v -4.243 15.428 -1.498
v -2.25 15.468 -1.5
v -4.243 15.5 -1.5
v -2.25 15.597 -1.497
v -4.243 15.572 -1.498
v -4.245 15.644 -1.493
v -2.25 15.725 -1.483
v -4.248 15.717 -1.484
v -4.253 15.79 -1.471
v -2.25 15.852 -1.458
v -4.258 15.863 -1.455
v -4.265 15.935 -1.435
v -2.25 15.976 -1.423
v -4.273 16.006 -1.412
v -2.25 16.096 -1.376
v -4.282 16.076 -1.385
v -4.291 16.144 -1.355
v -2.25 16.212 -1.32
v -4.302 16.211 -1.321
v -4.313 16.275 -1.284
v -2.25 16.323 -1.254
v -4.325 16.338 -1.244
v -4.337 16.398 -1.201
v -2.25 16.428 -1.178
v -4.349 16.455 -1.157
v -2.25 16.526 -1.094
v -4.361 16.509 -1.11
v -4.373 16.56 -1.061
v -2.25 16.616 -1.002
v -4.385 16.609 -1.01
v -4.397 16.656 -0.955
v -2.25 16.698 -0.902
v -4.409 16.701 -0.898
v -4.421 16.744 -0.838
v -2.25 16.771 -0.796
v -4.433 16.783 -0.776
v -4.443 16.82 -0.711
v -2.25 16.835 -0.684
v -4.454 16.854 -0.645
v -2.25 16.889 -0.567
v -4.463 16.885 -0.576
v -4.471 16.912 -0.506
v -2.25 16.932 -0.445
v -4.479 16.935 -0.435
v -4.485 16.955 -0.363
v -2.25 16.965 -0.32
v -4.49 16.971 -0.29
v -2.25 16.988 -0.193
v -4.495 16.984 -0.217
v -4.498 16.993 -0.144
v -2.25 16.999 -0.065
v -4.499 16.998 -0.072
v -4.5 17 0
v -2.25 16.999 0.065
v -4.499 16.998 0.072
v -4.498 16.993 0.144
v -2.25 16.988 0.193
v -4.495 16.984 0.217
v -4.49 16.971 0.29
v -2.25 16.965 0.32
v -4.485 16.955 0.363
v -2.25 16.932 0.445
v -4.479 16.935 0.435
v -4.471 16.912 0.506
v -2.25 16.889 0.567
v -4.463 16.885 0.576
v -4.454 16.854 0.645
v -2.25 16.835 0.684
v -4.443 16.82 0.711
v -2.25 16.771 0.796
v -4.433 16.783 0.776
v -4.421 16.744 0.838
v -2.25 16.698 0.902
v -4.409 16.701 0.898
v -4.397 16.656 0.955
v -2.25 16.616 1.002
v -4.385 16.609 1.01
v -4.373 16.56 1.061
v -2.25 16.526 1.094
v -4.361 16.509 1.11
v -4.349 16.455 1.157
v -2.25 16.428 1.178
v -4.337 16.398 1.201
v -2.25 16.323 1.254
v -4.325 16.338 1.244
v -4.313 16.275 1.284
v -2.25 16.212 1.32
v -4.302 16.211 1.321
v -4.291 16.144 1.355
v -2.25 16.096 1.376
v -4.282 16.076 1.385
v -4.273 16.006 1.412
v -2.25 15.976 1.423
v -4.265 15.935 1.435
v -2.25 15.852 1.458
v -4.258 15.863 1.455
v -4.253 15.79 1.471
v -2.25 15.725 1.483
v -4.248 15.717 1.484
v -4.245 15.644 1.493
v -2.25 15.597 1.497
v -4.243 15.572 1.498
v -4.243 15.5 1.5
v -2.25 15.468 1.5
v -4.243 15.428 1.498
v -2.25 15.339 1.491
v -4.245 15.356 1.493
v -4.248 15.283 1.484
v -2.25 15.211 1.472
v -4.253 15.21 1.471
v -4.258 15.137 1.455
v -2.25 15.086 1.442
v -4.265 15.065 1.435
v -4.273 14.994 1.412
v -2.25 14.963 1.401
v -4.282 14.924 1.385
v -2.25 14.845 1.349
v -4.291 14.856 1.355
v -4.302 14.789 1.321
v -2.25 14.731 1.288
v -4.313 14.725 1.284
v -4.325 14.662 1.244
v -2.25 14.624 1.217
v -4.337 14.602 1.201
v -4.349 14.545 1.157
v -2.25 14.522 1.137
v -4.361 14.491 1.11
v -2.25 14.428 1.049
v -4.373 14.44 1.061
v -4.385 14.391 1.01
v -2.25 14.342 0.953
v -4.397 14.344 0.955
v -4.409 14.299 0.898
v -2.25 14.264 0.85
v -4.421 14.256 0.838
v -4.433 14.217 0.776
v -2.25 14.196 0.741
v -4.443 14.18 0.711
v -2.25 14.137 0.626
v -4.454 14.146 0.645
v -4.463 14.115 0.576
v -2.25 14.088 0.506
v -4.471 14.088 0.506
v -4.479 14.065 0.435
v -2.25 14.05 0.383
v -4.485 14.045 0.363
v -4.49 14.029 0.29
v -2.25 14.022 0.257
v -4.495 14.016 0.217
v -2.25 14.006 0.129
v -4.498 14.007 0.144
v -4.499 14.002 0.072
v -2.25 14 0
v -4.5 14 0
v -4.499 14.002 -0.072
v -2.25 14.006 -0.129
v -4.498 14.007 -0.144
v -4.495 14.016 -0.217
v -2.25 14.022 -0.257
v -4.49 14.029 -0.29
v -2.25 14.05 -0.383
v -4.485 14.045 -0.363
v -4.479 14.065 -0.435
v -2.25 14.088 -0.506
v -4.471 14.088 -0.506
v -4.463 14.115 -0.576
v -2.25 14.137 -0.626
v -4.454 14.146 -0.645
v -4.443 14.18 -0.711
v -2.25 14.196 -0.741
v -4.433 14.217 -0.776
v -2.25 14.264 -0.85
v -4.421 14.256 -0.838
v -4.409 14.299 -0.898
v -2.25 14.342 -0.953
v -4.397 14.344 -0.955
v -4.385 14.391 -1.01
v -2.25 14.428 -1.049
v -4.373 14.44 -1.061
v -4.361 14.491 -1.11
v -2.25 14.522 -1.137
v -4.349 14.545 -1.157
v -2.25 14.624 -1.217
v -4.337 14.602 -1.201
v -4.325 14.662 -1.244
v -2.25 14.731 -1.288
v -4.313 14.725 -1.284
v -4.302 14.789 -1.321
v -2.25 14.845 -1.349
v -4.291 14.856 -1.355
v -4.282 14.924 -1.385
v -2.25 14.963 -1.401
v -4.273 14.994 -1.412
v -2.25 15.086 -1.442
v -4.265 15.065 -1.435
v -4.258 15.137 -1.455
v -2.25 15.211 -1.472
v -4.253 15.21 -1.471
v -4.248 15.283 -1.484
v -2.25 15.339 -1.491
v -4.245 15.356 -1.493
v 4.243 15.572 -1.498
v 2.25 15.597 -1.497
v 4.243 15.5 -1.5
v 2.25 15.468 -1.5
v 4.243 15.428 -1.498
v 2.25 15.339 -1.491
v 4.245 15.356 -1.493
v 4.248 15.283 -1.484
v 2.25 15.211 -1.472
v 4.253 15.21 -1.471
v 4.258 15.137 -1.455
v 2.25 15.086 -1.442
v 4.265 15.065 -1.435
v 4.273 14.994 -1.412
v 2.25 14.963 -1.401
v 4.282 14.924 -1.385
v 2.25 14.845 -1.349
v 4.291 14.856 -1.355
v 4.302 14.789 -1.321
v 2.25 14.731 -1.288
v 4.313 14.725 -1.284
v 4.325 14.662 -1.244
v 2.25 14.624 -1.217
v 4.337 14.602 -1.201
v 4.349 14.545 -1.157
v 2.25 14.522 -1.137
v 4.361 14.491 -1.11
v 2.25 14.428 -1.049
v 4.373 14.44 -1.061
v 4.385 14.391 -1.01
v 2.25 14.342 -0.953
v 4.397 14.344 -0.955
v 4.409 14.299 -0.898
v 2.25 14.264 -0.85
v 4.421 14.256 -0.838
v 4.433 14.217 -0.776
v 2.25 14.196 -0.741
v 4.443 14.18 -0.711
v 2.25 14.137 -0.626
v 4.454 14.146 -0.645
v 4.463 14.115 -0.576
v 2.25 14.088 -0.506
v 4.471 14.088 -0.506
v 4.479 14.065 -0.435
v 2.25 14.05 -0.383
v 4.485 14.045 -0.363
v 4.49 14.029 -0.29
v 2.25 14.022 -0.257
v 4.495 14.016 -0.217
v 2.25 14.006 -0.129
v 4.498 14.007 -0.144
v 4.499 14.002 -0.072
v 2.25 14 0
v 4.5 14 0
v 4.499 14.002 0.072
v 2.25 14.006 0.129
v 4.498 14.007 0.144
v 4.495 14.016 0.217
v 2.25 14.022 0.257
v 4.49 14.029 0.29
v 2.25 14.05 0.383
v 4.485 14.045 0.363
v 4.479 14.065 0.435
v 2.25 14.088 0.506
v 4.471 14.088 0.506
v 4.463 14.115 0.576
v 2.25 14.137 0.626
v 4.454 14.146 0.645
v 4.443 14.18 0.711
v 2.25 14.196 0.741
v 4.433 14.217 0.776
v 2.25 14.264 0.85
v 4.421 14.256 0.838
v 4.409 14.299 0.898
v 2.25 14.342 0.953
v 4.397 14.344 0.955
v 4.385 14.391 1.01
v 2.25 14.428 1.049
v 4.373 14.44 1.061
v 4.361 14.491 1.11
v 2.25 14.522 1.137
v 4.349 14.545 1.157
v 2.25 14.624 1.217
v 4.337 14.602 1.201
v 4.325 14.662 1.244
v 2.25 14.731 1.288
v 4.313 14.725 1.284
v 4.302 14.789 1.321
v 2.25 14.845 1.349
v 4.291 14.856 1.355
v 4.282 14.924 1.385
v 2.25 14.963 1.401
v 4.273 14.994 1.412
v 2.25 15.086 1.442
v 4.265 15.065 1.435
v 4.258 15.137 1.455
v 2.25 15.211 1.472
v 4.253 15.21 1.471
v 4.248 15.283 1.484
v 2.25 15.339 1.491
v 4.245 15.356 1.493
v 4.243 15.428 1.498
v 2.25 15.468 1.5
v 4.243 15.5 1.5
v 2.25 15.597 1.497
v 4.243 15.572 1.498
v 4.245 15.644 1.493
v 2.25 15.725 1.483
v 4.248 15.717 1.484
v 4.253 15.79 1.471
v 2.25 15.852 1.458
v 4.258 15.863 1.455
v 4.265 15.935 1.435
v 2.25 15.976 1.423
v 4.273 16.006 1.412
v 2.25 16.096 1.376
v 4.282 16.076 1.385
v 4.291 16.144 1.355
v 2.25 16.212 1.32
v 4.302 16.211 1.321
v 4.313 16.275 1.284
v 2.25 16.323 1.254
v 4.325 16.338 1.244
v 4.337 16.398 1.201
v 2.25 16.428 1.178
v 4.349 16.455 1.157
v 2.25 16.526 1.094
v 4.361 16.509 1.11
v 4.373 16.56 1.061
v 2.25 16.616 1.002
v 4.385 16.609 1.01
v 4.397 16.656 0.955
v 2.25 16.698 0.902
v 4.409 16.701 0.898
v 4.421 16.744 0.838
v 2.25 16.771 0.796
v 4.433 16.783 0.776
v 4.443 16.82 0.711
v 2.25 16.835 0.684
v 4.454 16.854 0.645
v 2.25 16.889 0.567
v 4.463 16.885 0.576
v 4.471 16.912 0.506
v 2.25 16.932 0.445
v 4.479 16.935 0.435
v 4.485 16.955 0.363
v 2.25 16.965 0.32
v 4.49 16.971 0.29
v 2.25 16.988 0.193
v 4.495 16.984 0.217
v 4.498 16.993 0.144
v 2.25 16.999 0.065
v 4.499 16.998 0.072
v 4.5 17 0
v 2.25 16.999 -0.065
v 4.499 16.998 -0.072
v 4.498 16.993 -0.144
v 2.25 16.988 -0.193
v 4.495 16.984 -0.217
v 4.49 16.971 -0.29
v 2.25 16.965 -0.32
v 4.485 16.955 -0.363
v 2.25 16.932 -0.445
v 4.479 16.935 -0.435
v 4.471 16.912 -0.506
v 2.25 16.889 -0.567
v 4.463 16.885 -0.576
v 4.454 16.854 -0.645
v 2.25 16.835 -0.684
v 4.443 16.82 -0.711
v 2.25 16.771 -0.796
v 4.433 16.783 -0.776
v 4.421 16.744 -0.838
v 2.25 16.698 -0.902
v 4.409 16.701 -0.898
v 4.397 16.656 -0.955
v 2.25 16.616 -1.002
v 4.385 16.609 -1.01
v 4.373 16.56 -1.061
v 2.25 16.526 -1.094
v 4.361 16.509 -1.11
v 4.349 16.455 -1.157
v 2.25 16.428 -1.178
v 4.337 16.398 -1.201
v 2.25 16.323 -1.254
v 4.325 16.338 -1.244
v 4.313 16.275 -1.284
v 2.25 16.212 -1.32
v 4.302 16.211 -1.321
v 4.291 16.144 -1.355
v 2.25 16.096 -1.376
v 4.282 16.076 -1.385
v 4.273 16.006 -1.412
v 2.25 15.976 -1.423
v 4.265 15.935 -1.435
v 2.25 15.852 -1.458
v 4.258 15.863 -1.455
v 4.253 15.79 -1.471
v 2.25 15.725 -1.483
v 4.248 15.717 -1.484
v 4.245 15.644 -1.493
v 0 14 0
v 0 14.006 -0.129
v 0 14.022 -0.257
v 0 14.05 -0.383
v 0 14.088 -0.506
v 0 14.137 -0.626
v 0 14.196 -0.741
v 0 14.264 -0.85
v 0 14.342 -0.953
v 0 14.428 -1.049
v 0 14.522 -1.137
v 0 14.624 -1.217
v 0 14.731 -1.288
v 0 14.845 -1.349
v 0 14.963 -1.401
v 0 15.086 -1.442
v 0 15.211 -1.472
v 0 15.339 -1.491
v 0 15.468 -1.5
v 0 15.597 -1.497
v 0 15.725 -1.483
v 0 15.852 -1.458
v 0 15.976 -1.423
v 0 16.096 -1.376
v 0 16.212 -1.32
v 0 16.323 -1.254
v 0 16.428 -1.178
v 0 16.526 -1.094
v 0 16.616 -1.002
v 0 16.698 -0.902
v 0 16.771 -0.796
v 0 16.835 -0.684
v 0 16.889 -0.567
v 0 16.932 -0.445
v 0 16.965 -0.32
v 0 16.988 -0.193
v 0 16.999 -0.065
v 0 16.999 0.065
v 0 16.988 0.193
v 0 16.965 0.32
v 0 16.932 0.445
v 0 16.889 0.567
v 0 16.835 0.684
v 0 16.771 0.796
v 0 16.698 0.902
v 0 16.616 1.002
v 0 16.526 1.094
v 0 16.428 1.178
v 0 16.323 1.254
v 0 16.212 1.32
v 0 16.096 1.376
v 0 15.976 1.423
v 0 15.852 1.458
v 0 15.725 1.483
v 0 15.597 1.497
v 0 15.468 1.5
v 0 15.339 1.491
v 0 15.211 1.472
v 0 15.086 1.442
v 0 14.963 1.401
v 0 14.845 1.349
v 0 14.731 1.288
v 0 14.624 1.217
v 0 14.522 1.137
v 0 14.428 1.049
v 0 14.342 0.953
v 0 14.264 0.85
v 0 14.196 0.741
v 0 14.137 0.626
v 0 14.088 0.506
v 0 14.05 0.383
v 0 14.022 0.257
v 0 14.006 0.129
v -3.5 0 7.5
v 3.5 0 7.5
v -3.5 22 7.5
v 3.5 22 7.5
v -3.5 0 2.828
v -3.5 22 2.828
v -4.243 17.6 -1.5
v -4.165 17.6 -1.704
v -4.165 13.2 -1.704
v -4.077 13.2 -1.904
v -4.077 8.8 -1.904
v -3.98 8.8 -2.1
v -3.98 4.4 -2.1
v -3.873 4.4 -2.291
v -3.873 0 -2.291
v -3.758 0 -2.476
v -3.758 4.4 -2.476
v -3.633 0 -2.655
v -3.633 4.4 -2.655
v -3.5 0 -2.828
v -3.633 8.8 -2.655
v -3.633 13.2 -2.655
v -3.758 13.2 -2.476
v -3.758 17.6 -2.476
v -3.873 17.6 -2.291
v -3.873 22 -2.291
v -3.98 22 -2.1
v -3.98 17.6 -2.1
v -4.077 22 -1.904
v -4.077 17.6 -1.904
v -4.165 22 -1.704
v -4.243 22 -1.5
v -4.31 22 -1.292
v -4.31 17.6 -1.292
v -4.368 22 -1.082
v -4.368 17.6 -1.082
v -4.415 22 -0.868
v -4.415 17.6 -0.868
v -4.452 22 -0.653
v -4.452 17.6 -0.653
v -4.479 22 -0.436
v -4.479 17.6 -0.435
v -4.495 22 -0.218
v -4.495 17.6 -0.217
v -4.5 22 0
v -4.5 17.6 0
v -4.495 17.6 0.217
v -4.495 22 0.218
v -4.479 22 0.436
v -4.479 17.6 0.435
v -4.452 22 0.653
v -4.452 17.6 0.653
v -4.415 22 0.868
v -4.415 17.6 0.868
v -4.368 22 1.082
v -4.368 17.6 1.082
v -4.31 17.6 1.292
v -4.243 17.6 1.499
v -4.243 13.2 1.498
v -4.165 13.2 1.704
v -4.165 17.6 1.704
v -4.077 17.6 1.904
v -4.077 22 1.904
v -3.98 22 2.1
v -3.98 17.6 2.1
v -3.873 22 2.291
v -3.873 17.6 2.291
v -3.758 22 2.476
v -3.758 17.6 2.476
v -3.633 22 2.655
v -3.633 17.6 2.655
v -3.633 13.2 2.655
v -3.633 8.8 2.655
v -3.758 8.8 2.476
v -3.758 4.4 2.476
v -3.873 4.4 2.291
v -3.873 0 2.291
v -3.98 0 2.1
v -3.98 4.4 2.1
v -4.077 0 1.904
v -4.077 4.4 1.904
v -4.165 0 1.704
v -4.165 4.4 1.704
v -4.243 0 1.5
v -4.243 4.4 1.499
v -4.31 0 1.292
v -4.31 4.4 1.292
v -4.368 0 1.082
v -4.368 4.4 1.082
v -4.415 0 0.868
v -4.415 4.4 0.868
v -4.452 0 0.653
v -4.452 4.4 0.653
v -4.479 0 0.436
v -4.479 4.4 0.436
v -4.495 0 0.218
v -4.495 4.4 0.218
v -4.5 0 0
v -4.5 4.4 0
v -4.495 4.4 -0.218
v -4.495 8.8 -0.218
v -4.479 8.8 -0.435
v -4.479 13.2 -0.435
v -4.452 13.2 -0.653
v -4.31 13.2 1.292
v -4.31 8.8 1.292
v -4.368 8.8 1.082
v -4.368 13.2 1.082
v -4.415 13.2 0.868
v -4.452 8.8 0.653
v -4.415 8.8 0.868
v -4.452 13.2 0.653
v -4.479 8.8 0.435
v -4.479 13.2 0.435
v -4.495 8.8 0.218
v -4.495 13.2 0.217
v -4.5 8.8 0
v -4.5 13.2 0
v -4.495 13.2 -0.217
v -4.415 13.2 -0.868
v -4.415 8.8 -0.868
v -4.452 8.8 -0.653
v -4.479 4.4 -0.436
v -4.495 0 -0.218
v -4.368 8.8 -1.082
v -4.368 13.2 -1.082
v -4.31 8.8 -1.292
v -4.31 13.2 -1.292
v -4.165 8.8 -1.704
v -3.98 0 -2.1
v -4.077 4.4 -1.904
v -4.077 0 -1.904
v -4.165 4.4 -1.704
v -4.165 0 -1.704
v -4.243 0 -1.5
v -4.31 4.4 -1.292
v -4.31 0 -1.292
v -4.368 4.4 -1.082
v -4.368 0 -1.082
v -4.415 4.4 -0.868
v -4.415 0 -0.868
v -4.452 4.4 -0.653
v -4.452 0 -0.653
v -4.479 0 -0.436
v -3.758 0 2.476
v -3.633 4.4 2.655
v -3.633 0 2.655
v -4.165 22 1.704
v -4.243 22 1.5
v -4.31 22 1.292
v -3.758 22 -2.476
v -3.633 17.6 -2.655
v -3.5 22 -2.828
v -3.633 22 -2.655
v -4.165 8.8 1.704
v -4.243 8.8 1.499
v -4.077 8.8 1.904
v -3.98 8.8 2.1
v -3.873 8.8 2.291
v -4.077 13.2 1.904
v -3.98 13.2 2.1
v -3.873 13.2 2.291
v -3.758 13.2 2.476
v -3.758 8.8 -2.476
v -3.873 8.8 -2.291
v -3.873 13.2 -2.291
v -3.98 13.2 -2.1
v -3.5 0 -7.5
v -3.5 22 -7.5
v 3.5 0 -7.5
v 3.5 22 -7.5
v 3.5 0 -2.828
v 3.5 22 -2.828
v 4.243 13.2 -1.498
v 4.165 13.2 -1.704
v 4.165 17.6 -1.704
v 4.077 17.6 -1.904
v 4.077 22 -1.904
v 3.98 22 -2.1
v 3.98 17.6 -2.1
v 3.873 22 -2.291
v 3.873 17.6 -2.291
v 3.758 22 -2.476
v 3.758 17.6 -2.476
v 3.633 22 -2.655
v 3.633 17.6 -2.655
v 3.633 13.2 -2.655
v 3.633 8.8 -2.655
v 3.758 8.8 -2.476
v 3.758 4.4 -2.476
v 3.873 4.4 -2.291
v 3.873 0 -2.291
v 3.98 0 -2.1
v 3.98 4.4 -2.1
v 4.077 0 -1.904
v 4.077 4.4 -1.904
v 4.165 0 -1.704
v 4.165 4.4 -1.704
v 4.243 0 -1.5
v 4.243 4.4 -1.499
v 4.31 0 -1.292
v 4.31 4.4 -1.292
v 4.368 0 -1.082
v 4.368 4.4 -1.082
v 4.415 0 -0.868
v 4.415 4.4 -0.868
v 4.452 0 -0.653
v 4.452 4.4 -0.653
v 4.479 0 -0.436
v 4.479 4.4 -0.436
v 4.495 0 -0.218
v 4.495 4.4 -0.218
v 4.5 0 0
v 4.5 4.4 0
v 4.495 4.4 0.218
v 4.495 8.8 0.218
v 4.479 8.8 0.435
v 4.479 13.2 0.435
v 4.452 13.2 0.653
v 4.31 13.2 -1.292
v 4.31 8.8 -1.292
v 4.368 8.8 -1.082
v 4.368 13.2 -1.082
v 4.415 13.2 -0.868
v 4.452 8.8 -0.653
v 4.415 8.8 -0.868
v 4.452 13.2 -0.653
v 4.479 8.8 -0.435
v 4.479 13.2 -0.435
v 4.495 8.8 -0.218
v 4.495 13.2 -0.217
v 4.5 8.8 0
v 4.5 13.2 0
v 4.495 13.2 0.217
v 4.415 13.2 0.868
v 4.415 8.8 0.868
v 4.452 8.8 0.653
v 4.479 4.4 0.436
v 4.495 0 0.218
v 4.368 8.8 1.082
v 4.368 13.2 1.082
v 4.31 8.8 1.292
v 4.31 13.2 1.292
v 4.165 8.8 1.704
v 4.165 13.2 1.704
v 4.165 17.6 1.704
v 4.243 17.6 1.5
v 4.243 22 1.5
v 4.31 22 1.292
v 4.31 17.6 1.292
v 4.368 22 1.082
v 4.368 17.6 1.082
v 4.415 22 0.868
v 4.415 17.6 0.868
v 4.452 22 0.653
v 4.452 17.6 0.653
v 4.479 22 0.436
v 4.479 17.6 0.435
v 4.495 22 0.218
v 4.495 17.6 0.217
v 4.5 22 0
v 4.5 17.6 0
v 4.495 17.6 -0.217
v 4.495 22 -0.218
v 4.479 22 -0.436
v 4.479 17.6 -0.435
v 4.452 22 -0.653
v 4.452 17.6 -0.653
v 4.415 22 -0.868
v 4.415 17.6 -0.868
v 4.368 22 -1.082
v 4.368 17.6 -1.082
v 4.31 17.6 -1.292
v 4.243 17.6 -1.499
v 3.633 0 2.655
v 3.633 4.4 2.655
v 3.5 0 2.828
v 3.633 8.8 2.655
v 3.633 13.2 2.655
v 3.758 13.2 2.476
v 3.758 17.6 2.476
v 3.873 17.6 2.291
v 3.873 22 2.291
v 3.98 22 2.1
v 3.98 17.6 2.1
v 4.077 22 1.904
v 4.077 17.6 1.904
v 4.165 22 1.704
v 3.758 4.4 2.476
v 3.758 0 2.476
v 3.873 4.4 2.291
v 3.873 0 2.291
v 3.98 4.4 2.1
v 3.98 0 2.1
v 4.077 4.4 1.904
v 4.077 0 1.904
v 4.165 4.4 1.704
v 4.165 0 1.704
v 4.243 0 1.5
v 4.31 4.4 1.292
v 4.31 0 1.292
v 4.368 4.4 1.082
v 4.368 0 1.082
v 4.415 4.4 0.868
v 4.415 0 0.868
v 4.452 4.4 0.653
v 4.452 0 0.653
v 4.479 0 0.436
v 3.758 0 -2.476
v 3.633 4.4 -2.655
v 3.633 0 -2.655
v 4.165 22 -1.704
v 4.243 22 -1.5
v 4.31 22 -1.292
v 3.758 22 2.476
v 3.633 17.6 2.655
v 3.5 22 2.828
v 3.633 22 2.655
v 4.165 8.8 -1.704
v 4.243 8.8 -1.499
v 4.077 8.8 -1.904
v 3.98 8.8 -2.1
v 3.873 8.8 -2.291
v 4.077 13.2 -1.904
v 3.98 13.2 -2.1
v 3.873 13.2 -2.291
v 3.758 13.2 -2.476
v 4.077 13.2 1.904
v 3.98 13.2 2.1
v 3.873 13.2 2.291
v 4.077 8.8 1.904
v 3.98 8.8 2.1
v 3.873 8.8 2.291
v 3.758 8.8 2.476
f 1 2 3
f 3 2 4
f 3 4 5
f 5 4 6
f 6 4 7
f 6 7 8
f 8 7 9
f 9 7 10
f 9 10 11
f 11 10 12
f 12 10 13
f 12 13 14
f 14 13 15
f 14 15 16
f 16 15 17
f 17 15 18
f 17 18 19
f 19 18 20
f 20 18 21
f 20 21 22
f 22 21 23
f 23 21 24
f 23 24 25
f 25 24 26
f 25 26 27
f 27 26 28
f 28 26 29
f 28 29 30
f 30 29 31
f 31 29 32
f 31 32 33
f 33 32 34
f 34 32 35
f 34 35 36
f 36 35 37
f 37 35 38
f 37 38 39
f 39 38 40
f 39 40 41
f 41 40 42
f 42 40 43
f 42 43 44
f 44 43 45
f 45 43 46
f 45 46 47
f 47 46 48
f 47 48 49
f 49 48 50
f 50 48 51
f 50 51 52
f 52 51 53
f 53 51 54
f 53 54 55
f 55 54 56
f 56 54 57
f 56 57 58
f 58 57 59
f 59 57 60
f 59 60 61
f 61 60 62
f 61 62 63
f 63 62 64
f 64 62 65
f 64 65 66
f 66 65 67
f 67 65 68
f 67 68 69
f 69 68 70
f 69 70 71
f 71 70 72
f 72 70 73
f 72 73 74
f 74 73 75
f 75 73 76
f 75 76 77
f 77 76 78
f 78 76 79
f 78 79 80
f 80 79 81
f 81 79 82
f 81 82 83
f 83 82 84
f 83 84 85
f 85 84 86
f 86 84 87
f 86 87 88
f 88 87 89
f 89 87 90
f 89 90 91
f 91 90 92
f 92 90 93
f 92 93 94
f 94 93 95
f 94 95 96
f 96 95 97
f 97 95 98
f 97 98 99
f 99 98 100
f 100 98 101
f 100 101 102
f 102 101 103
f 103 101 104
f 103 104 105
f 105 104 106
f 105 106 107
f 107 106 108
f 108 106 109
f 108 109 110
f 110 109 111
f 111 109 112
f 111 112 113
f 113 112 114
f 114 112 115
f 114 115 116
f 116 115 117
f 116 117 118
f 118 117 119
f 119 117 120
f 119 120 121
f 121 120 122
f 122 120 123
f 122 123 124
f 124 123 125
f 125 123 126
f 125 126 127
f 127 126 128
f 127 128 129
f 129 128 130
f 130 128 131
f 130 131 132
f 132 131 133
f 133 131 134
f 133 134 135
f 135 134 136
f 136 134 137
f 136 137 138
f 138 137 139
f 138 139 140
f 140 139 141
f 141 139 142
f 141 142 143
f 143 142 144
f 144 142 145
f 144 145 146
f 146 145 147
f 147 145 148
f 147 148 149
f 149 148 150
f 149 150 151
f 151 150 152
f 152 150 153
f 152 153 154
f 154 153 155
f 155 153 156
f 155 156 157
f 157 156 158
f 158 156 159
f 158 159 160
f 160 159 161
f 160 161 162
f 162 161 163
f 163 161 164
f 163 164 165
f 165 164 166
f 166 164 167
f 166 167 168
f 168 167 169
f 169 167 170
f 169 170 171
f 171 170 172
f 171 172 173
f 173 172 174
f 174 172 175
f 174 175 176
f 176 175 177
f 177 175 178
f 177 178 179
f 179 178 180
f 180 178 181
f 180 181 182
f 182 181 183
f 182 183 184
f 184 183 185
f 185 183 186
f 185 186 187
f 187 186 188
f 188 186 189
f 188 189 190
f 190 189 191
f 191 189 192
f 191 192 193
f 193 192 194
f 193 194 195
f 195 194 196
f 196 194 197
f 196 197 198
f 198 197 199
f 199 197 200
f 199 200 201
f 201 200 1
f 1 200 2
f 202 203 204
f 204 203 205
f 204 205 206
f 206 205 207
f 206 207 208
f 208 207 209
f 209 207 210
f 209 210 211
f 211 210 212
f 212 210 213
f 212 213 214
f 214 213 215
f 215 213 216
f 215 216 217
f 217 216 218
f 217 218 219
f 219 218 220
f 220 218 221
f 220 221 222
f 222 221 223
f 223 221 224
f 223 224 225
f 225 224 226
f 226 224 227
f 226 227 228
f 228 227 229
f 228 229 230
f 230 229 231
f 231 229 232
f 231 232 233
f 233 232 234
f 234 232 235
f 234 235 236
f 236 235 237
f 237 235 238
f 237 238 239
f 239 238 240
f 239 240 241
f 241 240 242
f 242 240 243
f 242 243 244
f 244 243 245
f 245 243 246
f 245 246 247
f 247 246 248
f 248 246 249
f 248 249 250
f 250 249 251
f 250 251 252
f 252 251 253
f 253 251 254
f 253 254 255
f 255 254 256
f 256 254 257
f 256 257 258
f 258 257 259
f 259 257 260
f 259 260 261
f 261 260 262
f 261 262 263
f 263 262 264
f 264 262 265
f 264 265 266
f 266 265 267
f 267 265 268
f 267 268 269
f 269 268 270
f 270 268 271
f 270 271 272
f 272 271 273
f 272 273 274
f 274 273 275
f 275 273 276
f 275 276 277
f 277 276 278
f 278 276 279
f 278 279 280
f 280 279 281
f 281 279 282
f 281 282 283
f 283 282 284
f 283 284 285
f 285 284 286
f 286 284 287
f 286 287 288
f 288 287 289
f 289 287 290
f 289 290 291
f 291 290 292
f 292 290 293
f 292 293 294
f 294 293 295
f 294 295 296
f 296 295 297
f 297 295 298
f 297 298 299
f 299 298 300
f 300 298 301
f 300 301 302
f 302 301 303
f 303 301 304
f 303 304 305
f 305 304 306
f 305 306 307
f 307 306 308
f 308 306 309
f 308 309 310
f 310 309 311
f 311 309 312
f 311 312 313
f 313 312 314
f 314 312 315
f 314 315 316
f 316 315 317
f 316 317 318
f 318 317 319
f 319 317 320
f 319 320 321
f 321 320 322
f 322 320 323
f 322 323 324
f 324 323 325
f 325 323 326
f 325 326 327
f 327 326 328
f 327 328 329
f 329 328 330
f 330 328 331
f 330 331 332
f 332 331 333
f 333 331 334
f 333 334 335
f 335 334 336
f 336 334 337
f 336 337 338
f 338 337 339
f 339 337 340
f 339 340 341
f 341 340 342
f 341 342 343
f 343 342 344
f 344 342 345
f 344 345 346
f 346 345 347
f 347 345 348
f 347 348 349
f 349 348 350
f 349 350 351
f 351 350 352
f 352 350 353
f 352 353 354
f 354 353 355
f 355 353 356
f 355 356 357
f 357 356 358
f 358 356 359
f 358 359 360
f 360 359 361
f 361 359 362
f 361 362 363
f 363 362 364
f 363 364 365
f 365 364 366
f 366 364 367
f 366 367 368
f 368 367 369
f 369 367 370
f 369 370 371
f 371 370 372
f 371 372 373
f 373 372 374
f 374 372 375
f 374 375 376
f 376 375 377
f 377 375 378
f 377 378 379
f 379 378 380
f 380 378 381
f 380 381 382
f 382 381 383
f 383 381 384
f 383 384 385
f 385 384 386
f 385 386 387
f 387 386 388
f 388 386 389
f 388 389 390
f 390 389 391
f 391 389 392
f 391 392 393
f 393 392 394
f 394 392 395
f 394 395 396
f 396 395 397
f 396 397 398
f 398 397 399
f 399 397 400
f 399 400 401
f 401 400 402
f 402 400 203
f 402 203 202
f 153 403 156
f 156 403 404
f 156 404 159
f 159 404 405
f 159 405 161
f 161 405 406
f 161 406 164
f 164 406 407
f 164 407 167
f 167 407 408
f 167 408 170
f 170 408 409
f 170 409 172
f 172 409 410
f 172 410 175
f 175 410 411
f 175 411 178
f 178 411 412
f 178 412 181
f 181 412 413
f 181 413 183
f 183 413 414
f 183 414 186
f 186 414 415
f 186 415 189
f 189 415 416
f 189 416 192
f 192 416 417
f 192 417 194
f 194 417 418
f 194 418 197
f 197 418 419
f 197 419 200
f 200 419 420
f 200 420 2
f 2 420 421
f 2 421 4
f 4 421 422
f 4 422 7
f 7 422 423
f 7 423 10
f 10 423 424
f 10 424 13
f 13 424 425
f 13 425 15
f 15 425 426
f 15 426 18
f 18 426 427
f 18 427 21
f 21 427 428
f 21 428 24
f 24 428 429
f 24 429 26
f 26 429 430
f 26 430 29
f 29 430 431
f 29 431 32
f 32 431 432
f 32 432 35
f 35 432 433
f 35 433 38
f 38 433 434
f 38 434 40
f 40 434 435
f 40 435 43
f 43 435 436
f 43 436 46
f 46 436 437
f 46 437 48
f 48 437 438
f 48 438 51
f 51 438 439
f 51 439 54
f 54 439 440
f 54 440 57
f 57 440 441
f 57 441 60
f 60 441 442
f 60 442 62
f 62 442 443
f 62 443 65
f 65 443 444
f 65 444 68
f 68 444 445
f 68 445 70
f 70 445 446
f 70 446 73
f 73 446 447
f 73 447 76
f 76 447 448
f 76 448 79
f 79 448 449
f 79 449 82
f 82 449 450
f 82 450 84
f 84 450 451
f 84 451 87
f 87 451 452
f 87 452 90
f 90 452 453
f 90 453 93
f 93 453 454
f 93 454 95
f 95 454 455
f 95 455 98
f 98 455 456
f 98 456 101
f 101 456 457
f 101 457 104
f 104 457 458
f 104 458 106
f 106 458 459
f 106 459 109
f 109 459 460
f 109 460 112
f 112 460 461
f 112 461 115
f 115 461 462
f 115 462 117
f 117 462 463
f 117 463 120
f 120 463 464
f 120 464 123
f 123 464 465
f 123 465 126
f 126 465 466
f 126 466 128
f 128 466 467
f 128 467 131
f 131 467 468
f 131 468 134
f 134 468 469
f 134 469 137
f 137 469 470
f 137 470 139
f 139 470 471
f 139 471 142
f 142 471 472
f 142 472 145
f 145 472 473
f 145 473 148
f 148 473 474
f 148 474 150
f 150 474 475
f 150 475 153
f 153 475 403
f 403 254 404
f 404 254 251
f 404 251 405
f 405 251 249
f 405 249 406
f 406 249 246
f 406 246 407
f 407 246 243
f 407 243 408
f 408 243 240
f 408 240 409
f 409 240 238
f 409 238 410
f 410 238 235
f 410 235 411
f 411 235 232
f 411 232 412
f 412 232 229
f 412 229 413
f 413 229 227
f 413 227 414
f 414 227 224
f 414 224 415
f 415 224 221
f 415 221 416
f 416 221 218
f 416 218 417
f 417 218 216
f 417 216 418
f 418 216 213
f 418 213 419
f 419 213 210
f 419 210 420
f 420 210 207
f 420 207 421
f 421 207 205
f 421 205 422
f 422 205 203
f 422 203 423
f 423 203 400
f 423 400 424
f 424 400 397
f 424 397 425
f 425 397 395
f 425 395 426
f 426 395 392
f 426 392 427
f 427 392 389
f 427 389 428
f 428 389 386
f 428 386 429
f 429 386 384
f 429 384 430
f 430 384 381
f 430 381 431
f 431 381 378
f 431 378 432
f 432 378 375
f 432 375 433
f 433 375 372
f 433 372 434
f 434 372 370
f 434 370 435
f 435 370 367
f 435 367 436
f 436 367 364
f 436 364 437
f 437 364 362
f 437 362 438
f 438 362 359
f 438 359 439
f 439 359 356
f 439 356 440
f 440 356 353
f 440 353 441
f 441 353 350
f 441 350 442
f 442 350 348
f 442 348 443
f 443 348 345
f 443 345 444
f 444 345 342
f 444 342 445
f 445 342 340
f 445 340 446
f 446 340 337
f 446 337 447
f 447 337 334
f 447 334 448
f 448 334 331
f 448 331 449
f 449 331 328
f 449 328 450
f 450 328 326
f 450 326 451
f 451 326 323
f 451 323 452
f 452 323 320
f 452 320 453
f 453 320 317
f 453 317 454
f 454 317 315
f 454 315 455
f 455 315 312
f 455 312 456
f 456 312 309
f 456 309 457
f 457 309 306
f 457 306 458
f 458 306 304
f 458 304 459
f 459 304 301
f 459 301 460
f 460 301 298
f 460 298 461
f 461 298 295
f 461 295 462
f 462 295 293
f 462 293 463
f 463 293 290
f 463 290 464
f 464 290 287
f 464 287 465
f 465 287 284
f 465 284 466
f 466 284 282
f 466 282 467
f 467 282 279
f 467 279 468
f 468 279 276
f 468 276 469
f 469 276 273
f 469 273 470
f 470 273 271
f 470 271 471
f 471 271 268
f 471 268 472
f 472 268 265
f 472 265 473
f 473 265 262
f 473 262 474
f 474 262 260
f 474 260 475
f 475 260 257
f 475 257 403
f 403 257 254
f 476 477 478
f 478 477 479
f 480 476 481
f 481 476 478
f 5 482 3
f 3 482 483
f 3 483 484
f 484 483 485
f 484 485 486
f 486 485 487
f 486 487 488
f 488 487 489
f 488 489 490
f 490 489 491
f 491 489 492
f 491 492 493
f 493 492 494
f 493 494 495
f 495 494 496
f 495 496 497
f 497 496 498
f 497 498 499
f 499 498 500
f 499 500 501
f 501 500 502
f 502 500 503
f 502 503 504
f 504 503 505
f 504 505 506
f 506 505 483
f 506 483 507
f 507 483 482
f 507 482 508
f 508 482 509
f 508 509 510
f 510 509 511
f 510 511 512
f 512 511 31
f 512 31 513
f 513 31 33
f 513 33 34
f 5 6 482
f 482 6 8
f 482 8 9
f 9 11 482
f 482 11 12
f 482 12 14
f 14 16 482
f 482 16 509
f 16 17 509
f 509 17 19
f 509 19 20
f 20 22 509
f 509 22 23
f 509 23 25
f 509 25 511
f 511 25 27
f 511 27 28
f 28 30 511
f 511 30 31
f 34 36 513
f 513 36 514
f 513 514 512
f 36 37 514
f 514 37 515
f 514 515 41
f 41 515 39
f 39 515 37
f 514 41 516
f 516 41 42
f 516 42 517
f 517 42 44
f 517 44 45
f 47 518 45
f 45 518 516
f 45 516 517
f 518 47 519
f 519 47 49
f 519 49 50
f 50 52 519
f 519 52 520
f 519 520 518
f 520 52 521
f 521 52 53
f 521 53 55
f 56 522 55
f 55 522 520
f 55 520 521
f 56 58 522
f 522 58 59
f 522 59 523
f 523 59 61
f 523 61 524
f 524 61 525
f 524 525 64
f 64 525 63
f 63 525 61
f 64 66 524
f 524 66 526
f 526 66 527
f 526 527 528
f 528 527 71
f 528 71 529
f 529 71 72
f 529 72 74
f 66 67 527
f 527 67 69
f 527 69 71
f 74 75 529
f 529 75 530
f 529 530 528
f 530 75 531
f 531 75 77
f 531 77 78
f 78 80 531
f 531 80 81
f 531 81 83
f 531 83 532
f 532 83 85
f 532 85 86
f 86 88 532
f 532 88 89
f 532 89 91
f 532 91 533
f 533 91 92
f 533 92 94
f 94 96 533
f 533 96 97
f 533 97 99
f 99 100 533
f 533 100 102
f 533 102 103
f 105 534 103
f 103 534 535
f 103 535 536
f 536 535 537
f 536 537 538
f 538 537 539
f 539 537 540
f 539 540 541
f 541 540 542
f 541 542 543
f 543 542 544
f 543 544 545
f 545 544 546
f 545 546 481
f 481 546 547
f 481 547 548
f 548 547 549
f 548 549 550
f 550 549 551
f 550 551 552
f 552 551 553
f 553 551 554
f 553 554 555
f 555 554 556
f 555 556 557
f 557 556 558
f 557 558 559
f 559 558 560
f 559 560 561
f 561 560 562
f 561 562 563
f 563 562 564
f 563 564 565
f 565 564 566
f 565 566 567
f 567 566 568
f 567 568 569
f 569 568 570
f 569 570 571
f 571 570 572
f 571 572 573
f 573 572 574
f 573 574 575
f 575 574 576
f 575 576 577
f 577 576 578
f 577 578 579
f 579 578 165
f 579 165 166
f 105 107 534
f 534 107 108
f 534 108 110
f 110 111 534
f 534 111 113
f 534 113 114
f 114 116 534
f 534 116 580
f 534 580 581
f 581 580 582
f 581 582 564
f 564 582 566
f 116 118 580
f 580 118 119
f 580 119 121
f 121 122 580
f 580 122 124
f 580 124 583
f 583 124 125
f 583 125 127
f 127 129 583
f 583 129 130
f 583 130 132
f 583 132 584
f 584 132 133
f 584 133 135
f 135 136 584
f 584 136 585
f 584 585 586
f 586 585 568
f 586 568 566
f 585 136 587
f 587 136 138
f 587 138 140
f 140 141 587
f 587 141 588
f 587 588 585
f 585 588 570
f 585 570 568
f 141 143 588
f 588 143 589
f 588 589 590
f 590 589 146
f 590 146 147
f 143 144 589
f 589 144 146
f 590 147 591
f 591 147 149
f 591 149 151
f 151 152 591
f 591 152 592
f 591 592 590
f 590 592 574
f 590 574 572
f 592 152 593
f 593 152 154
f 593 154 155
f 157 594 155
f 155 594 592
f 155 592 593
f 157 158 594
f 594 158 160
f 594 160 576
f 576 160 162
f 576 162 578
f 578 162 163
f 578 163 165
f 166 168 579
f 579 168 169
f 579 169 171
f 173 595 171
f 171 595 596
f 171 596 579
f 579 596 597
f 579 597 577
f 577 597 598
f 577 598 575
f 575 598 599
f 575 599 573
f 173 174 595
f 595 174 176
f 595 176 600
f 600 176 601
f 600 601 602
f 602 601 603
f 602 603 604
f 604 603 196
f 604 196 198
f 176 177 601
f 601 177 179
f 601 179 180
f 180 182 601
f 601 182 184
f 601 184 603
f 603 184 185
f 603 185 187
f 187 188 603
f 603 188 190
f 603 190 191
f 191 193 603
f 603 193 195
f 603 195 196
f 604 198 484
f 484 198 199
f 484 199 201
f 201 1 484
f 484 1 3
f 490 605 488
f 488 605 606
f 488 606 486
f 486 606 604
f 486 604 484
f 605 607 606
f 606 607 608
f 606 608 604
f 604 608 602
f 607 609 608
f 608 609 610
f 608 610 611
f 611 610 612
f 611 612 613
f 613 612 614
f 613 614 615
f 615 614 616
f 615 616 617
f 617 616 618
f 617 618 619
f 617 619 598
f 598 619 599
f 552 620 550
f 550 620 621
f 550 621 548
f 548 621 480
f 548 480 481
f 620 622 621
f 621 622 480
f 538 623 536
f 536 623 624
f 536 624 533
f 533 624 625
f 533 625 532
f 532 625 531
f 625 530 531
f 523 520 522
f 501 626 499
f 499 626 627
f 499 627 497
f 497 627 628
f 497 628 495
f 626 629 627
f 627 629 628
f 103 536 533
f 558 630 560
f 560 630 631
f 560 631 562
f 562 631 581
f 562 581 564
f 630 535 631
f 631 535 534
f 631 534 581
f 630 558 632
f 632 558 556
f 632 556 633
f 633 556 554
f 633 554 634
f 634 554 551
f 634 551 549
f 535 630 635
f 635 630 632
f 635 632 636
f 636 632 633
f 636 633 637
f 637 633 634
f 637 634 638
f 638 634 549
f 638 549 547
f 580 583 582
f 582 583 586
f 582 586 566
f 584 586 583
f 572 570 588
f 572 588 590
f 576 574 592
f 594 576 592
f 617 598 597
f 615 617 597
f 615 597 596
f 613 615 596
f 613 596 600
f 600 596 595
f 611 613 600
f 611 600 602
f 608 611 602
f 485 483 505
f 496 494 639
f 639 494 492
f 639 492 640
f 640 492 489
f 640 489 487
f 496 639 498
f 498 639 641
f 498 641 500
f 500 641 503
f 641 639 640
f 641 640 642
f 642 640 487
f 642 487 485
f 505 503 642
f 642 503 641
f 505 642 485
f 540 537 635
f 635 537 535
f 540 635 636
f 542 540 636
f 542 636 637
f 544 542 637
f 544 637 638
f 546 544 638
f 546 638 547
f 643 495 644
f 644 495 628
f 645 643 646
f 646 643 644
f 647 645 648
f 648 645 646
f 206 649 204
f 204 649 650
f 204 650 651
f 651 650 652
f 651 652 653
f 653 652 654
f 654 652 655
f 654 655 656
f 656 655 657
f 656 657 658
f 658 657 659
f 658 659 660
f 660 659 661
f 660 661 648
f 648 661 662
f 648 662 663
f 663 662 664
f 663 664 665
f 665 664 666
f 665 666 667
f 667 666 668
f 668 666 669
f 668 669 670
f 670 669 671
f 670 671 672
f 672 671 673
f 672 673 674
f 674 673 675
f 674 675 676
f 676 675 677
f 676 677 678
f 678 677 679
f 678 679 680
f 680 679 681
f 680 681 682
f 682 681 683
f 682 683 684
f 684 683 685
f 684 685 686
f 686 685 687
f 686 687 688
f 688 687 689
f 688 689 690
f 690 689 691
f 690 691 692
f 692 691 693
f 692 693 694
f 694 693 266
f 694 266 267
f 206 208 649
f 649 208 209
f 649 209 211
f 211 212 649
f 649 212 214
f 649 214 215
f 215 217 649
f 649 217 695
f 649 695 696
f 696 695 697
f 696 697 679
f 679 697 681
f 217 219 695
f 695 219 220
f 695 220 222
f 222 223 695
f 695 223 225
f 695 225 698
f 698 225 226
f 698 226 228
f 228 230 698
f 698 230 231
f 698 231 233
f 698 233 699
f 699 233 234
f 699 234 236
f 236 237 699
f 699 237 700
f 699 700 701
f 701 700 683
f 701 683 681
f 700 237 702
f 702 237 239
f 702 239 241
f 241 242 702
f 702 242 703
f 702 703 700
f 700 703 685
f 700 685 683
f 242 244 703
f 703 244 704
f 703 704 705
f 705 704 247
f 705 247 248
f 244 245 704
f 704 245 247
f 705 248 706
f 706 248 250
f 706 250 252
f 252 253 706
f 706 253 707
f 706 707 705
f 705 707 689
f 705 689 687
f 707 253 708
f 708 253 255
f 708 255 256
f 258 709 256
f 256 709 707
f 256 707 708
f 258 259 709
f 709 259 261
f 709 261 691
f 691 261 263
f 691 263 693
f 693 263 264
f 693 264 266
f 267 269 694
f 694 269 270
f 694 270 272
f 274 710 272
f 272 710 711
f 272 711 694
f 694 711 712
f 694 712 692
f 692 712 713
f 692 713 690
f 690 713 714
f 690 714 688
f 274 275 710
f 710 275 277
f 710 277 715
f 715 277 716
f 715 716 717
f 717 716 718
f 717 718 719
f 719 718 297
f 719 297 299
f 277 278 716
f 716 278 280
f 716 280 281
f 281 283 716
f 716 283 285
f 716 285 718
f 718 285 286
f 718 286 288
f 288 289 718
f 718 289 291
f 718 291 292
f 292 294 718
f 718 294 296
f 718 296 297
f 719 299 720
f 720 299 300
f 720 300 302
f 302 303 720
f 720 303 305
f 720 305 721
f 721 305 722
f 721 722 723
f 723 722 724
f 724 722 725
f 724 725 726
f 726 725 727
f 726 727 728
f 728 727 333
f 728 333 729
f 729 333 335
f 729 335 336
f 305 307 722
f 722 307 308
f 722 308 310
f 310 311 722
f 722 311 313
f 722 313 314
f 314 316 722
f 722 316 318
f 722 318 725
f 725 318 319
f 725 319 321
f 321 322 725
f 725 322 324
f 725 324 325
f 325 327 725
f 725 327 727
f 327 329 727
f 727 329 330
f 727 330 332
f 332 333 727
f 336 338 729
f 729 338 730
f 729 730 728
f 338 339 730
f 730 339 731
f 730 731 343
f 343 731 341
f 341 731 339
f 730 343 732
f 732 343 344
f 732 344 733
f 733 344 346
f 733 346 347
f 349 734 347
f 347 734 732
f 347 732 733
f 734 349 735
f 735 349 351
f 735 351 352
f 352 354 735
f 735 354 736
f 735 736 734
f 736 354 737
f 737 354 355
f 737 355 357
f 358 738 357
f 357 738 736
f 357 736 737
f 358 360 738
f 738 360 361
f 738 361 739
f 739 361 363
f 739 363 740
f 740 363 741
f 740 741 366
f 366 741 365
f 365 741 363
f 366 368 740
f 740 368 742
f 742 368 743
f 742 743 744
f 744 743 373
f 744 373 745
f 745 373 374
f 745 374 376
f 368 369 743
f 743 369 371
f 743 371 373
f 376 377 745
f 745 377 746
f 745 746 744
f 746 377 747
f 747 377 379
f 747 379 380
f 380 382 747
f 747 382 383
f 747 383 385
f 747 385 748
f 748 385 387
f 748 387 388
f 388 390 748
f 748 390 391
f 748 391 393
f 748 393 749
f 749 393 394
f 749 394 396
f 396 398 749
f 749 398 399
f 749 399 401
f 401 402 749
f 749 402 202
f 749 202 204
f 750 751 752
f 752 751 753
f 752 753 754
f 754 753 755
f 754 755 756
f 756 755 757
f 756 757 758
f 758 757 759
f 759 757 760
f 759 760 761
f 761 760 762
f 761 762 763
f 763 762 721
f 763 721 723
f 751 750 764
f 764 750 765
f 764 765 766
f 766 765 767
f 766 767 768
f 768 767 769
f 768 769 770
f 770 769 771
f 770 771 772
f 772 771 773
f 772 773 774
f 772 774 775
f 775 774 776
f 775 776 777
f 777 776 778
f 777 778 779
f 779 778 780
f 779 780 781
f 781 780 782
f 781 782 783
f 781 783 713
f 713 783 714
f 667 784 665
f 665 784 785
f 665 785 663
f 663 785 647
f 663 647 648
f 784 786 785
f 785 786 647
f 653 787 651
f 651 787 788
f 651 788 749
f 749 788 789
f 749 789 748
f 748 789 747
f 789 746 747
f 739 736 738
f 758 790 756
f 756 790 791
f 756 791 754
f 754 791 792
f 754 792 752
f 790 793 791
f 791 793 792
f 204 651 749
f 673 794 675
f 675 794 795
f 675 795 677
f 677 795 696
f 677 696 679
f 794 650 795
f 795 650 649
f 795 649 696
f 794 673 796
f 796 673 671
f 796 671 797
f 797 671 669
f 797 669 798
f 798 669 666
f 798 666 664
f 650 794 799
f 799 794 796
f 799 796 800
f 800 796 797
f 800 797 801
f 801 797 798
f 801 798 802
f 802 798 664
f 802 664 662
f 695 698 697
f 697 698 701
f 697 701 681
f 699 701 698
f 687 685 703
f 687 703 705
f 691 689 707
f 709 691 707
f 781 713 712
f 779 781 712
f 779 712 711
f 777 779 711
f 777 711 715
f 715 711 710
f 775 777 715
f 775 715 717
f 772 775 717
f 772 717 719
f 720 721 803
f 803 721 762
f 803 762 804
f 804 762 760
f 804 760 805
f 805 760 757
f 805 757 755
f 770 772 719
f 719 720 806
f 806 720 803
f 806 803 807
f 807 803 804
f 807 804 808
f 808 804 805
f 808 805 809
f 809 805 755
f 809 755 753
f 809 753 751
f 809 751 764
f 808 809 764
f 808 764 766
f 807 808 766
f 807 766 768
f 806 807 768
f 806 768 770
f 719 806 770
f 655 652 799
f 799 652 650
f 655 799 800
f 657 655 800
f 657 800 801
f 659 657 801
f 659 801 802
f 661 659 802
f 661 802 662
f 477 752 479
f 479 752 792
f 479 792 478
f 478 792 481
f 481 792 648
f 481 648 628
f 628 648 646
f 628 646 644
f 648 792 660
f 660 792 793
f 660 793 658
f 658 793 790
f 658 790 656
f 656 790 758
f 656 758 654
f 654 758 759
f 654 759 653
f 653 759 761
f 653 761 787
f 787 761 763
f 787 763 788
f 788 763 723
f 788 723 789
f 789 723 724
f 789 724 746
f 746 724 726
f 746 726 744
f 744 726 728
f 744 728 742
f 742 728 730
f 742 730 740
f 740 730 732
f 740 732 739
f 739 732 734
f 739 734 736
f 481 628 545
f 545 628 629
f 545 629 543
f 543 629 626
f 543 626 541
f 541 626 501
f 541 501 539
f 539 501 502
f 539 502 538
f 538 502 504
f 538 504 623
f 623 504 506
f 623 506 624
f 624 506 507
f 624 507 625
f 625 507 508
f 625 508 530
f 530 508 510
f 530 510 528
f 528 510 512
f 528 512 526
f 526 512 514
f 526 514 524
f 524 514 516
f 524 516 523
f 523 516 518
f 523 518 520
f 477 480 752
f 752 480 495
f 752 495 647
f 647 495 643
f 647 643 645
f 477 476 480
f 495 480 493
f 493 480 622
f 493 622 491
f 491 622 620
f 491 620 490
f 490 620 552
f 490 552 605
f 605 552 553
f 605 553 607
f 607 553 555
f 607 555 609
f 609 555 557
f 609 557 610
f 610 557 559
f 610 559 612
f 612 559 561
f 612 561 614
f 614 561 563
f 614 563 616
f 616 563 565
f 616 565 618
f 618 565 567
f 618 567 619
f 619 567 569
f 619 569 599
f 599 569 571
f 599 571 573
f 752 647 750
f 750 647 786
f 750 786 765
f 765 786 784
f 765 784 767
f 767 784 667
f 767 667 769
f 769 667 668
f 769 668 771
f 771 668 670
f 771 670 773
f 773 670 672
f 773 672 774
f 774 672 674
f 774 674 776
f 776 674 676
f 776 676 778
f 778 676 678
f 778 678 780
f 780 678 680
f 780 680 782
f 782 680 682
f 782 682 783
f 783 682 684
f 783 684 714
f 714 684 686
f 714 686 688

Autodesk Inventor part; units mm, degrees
ref_plane "YZ Plane" through (0, 0, 0) normal (1, 0, 0) x (0, 1, 0)
ref_plane "XZ Plane" through (0, 0, 0) normal (0, 1, 0) x (-1, 0, 0)
ref_plane "XY Plane" through (0, 0, 0) normal (0, 0, 1) x (1, 0, 0)
sketch "Skizze1" plane through (0, 0, 0) normal (0, 1, 0) x (-1, 0, 0)
  line L0 (3.5, 7.5) -> (-3.5, 7.5)
  line L1 (-3.5, 7.5) -> (-3.5, 2.8284)
  line L2 (-3.5, -7.5) -> (3.5, -7.5)
  line L3 (3.5, -7.5) -> (3.5, -2.8284)
  line L4 (3.5, 7.5) -> (-3.5, -7.5) construction
  line L5 (-3.5, 7.5) -> (3.5, -7.5) construction
  line L6 (-3.5, -2.8284) -> (-3.5, -7.5)
  arc A0 (-3.5, 2.8284) -> (-3.5, -2.8284) centre (0, 0) ccw
  arc A1 (3.5, -2.8284) -> (3.5, 2.8284) centre (0, 0) ccw
  line L7 (3.5, 2.8284) -> (3.5, 7.5)
  line L8 (3.5, -2.8284) -> (3.5, 2.8284) construction
  line L9 (-3.5, -2.8284) -> (-3.5, 2.8284) construction
  arc A2 (-3.5, -2.8284) -> (3.5, -2.8284) centre (0, 0) ccw construction
  arc A3 (3.5, 2.8284) -> (-3.5, 2.8284) centre (0, 0) ccw construction
  dimension "d0" = 7
  dimension "d1" = 15
  dimension "d5" = 4.5
extrude "Extrusion1" add sketch "Skizze1" along normal blind 22
sketch "Skizze2" plane through (0, 0, 0) normal (1, 0, 0) x (0, 1, 0)
  circle A0 centre (15.5, 0) radius 1.5
  line L0 (0, -7.5) -> (22, -7.5) projected
  line L1 (22, -2.8284) -> (22, 2.8284) projected
  point P0 (0, 0)
  dimension "d8" = 3
  dimension "d9" = 7.5
  dimension "d10" = 6.5
extrude "Extrusion2" cut sketch "Skizze2" along normal through all both and the other way through all
properties part number "simpleste Anbindung"
